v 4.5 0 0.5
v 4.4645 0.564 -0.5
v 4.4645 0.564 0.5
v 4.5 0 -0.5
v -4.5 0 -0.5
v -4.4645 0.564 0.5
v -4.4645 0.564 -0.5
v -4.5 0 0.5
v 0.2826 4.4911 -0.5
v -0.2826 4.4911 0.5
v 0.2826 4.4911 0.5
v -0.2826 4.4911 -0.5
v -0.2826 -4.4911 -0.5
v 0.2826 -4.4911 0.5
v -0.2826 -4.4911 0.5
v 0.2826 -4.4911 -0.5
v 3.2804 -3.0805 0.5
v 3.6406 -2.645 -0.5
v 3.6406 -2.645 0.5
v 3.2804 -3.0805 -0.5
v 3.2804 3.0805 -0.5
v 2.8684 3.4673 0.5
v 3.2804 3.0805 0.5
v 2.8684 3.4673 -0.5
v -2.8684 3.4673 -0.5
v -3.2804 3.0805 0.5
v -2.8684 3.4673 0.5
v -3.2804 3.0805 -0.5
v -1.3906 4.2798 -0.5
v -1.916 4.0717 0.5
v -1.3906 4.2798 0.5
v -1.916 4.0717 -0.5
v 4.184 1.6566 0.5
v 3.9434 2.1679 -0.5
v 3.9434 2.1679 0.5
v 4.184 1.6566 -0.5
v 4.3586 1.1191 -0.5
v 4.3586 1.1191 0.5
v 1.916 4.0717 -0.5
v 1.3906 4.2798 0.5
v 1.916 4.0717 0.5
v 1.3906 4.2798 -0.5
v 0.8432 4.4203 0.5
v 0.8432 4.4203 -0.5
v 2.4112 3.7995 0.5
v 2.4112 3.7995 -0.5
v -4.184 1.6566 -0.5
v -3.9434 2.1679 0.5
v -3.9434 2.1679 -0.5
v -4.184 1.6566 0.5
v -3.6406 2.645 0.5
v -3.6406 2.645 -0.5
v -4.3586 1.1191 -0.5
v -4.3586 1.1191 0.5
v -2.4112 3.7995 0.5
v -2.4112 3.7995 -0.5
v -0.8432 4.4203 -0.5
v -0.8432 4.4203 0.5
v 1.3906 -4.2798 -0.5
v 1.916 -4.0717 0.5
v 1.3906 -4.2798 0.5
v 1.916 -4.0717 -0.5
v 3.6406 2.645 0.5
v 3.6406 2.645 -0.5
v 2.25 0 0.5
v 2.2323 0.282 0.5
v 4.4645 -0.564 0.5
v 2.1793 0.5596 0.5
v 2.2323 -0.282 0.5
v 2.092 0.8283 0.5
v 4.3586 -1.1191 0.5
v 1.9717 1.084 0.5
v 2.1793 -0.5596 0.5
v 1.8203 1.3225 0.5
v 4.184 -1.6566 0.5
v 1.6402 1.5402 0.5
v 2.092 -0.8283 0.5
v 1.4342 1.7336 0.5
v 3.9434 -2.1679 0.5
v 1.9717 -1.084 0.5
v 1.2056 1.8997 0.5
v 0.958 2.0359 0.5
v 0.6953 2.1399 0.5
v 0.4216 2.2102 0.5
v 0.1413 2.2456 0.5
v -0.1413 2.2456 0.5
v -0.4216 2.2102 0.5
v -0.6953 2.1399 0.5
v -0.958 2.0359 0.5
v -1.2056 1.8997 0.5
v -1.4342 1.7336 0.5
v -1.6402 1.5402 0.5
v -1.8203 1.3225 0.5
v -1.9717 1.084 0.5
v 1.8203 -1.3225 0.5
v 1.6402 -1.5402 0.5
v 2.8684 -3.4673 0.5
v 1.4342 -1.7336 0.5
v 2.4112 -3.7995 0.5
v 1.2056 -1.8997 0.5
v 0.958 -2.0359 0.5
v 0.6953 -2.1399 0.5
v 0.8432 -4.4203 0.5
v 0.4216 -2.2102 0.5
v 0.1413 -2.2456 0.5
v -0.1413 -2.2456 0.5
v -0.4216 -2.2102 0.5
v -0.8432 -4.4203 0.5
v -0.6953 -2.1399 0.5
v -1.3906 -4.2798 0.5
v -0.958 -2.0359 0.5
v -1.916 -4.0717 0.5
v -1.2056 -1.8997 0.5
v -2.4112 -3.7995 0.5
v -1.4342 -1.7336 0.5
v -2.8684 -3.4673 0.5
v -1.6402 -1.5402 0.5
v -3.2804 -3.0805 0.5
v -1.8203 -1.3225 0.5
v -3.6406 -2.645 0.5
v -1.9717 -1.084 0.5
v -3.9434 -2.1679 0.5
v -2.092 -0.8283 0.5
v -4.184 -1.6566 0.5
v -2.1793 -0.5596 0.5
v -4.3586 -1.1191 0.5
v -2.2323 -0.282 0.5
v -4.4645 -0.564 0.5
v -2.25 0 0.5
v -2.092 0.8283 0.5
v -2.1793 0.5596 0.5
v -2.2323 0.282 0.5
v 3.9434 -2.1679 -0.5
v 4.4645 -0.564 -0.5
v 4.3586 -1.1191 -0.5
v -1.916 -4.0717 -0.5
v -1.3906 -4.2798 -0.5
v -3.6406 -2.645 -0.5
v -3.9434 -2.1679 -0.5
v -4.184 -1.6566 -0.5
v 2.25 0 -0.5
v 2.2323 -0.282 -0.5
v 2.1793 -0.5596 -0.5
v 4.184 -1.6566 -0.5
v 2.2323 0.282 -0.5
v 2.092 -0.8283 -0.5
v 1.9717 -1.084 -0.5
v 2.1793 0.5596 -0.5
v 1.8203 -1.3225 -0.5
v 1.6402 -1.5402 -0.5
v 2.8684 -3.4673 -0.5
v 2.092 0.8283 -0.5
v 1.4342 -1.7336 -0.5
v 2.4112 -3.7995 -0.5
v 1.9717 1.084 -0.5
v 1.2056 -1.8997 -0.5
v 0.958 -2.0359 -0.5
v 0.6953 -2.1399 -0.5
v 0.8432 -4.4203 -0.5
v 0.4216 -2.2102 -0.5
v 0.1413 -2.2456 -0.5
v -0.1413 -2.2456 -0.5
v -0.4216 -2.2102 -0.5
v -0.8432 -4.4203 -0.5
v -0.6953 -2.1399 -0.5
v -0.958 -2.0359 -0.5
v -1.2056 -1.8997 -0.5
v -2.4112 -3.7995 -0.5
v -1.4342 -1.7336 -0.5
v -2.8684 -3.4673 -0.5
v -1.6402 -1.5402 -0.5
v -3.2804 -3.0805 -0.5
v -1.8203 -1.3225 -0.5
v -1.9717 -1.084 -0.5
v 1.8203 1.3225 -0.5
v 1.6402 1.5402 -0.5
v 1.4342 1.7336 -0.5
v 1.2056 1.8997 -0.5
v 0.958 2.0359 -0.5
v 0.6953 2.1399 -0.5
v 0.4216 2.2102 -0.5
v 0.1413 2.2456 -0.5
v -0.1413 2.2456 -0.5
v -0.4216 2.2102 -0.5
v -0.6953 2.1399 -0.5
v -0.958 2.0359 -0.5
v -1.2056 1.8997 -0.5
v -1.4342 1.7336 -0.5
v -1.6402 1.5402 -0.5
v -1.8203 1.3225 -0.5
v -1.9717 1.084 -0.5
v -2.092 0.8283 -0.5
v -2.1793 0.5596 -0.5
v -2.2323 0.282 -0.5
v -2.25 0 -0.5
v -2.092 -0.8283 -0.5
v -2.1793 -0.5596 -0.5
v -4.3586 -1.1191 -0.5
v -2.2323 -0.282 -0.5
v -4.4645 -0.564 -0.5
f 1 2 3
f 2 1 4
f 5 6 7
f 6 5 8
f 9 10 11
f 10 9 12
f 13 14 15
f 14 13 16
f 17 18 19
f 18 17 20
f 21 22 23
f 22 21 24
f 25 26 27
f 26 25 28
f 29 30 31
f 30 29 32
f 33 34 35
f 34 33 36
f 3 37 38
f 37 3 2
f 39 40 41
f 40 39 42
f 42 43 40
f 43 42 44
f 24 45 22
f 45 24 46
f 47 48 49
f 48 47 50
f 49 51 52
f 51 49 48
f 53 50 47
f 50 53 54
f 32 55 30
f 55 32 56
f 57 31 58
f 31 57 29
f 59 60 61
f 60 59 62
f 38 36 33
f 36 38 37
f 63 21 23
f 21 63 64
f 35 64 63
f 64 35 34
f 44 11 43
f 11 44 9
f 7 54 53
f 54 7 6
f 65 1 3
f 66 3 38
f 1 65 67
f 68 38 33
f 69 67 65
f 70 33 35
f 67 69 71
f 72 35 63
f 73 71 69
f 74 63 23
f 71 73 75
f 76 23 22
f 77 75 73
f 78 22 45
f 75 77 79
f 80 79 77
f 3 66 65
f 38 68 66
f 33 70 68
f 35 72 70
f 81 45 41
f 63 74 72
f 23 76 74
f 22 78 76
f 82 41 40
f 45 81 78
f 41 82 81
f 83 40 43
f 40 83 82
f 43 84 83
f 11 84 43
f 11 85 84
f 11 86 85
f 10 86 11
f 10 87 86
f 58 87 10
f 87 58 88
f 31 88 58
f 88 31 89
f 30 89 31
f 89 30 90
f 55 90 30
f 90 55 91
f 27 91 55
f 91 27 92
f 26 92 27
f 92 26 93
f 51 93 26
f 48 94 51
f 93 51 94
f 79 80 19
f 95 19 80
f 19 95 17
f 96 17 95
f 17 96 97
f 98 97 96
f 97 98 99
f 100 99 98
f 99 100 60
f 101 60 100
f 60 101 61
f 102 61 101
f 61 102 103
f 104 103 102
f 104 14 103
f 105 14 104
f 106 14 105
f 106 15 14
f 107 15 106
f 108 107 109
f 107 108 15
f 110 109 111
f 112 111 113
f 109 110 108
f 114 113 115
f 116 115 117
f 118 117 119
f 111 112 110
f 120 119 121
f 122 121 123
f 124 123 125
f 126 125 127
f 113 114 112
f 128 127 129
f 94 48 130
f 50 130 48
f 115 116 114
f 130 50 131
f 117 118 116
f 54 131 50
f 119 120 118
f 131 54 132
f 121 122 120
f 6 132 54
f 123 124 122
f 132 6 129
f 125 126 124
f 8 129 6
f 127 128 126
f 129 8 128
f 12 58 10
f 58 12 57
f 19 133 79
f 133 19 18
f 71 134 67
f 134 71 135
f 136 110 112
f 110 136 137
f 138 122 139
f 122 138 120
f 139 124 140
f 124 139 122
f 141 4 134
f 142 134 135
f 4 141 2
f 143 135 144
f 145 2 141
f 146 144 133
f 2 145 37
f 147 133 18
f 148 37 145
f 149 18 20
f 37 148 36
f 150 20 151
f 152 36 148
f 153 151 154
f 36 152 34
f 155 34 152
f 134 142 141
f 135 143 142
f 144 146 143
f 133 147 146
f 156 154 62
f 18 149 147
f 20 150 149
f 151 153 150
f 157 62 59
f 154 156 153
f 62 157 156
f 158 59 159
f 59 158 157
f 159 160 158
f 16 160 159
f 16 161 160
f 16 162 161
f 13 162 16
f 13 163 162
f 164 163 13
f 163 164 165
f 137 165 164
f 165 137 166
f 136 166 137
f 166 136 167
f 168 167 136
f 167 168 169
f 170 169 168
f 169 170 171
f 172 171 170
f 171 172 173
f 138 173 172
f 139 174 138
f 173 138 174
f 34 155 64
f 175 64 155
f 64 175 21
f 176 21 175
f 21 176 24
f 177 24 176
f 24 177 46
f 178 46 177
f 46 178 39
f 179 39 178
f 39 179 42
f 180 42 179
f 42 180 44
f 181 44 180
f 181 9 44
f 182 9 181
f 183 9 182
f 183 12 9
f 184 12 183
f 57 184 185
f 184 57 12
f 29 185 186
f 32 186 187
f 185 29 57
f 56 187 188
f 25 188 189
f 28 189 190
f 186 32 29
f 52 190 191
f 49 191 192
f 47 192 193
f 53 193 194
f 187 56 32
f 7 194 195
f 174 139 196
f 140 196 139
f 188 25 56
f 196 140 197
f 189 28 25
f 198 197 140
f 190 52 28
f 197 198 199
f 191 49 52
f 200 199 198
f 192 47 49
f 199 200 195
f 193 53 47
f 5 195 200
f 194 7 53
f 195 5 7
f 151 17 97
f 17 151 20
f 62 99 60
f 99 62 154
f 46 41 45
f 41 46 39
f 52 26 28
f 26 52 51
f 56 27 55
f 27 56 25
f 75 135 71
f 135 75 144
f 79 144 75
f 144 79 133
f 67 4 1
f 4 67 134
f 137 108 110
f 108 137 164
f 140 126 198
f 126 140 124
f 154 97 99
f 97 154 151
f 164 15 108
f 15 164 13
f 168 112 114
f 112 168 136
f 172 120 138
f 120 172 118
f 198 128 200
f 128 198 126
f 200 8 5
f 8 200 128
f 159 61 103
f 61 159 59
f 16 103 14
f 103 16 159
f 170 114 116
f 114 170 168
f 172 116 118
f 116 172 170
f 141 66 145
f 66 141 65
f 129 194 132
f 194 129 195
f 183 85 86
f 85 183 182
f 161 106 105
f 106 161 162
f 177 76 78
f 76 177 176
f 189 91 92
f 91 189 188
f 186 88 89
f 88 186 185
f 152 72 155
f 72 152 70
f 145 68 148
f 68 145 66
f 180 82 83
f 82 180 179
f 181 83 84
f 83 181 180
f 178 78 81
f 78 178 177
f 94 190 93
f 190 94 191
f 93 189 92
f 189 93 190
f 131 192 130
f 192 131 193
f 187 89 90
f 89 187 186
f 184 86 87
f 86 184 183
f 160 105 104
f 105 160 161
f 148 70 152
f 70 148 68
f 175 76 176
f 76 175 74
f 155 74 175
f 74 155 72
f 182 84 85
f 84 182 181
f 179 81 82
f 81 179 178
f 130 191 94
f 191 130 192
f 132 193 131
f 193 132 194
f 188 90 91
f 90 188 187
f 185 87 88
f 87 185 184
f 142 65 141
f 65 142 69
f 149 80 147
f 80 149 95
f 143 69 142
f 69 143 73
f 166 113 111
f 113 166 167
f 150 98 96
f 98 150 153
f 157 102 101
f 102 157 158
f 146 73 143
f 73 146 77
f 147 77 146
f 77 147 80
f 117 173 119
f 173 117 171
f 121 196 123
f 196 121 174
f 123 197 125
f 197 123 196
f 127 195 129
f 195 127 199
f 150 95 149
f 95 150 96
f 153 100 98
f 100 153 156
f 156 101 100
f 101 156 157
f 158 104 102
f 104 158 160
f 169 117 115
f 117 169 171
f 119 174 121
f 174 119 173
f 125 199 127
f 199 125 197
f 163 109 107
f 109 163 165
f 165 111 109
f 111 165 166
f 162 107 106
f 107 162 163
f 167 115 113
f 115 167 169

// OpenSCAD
$fn = 50;


difference() {
	union() {
		translate(v = [0, 0, -0.5000000000]) {
			cylinder(h = 1, r = 4.5000000000);
		}
	}
	union() {
		translate(v = [0, 0, -100.0000000000]) {
			cylinder(h = 200, r = 2.2500000000);
		}
	}
}
